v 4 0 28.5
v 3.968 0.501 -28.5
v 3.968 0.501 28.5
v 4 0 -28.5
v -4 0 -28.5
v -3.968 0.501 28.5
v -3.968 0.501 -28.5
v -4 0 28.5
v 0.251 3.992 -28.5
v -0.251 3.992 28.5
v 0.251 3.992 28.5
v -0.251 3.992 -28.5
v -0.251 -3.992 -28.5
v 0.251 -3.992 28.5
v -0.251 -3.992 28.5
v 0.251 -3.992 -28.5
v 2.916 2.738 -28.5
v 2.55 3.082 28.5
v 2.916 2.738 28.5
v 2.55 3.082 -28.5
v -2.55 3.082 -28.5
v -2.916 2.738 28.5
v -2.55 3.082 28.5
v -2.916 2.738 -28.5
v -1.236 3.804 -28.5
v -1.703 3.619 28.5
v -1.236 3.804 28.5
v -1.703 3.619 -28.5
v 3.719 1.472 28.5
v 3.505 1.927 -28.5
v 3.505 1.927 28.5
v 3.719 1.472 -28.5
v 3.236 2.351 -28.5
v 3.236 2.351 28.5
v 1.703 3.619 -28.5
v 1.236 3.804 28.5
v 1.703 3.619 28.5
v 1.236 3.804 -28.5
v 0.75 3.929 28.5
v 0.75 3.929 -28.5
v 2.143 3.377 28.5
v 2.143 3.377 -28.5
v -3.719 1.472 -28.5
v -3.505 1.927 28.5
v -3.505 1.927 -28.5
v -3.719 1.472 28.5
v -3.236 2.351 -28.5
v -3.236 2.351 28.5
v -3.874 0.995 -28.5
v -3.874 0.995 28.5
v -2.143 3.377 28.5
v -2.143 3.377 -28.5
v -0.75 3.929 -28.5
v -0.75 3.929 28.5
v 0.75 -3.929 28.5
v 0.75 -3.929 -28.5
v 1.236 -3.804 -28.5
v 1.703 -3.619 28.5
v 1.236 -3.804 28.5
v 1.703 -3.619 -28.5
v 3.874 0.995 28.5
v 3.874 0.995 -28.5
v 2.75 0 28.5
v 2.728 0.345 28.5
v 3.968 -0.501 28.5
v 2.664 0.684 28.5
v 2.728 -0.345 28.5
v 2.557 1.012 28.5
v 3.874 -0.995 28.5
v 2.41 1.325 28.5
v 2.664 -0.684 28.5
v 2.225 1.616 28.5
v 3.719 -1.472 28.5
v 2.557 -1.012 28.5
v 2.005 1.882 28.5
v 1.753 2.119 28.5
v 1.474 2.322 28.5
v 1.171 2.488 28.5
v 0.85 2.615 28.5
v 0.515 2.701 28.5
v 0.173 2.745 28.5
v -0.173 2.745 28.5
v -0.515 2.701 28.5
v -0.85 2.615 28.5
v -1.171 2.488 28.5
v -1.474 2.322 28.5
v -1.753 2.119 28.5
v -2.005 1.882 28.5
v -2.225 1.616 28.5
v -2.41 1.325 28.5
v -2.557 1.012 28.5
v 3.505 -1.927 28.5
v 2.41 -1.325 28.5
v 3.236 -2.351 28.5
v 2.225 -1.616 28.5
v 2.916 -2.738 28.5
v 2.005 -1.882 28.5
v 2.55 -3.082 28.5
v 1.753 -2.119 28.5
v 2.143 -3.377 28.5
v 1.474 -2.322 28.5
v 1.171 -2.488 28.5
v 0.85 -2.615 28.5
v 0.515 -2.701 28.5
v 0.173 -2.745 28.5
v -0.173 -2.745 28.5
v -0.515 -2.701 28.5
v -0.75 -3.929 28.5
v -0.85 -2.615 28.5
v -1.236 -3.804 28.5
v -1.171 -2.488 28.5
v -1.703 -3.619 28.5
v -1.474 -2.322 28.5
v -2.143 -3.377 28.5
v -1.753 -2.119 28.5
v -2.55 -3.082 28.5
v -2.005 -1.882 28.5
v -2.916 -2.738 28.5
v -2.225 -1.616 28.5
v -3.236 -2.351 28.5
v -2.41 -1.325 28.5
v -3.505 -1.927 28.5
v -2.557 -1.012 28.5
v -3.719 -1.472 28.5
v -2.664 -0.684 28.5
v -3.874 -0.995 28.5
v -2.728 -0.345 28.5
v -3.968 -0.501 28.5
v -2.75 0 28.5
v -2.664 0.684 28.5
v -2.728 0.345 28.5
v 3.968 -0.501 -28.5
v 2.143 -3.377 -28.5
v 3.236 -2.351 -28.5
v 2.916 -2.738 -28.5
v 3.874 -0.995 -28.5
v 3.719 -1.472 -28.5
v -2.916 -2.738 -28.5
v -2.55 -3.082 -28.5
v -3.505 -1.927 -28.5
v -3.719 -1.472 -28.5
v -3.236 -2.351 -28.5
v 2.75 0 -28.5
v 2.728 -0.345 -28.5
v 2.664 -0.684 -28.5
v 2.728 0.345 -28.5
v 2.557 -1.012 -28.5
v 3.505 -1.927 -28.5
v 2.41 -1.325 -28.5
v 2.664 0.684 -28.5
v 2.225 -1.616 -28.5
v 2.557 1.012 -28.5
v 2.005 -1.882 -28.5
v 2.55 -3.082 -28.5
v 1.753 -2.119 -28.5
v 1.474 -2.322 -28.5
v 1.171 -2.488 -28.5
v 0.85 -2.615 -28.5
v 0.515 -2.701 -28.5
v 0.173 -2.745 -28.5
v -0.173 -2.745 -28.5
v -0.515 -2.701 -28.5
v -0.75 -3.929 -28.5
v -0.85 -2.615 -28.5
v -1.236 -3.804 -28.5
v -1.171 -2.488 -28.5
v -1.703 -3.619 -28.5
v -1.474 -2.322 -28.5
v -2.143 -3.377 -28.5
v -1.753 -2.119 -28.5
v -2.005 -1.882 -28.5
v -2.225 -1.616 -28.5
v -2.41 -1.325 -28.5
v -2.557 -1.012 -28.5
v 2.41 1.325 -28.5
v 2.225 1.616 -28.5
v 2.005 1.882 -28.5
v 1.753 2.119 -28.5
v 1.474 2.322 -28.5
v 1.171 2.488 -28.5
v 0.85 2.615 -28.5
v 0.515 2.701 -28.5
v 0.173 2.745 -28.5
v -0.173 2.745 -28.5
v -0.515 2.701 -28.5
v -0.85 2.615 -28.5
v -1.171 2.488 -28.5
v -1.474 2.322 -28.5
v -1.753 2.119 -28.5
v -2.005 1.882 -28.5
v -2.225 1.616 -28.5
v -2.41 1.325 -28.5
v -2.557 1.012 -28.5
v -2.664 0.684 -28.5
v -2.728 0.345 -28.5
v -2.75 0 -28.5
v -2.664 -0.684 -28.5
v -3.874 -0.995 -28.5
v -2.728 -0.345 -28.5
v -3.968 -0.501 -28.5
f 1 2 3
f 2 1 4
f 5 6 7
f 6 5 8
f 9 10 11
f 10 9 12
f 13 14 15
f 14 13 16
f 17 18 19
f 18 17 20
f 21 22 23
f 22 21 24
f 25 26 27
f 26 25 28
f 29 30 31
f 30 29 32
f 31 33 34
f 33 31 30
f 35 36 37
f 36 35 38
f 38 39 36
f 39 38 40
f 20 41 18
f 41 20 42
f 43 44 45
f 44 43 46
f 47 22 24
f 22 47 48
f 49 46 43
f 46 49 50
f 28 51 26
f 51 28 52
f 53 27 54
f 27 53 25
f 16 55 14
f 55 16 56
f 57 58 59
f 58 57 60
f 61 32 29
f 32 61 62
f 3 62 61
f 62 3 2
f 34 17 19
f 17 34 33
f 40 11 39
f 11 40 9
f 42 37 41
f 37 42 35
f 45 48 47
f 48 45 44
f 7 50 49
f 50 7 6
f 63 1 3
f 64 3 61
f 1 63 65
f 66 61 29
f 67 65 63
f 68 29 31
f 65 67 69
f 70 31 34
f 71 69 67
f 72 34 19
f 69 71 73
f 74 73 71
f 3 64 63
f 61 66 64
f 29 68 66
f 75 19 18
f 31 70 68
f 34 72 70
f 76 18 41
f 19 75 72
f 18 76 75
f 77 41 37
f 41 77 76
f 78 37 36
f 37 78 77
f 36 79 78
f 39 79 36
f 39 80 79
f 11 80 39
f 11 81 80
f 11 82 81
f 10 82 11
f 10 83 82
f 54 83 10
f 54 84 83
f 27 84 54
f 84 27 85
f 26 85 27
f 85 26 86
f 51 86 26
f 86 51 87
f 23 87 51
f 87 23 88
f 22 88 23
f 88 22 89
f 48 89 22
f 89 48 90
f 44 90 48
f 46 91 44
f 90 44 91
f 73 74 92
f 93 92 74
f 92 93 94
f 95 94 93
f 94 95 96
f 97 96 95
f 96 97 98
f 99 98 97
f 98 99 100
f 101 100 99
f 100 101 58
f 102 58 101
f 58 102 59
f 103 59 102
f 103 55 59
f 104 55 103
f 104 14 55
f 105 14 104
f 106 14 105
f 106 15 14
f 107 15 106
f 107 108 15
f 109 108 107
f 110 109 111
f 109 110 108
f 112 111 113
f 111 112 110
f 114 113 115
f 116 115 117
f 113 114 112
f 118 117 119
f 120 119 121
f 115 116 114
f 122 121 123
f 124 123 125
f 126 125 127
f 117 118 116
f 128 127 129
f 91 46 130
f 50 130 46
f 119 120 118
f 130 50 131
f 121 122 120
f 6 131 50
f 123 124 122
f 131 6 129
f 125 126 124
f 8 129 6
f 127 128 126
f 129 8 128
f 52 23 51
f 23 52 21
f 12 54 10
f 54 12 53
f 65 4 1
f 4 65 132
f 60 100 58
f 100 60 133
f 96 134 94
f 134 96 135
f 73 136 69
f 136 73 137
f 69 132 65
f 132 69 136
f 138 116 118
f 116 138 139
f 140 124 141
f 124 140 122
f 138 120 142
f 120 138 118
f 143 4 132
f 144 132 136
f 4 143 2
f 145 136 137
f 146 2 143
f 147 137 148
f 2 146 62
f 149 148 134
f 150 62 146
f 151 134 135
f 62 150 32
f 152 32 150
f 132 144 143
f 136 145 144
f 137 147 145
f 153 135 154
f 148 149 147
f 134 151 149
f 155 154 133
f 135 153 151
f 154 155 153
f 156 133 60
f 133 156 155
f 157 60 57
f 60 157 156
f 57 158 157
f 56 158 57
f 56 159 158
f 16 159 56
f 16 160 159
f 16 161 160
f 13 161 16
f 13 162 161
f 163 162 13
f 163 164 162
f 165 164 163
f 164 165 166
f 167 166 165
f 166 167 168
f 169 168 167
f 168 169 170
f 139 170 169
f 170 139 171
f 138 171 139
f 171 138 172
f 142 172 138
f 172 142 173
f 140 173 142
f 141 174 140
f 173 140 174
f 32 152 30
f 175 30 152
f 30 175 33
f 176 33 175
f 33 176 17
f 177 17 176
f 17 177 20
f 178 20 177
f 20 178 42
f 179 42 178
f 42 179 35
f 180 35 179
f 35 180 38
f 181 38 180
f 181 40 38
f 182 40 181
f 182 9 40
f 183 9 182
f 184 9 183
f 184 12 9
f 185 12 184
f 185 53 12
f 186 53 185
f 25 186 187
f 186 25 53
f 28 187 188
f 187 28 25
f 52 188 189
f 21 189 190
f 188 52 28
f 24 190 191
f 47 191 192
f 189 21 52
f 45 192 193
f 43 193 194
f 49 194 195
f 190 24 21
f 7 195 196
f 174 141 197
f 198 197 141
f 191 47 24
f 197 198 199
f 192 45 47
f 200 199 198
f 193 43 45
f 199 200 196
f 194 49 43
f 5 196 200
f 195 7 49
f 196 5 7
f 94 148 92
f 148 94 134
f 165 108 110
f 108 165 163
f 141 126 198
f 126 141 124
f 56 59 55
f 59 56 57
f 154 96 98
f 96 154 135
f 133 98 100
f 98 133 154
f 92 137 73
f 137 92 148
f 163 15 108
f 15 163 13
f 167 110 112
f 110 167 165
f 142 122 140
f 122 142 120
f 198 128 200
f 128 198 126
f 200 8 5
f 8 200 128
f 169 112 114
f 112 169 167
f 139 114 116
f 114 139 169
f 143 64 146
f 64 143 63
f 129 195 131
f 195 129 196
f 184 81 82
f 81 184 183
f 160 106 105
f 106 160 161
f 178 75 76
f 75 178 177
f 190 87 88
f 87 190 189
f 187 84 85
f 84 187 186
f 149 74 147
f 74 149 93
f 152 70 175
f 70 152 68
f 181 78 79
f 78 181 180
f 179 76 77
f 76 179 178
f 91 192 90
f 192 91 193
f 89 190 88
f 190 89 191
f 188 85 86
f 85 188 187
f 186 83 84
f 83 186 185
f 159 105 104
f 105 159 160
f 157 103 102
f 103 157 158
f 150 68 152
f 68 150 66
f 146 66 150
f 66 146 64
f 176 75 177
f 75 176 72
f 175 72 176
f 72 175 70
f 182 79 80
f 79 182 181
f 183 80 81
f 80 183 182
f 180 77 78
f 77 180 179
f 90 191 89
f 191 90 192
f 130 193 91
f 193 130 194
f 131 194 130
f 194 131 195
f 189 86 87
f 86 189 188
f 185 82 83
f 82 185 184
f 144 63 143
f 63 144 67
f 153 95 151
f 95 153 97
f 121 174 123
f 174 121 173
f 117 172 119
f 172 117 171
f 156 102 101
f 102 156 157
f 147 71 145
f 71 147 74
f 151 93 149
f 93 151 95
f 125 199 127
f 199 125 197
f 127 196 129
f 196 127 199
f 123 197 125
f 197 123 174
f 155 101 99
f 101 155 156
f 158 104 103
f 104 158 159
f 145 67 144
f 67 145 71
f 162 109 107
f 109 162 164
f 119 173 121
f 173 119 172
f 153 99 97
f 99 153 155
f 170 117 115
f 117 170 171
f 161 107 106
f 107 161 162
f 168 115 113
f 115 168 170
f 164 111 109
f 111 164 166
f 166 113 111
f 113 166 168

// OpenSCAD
$fn = 50;


difference() {
	union() {
		translate(v = [0, 0, -28.5000000000]) {
			cylinder(h = 57, r = 4.0000000000);
		}
	}
	union() {
		translate(v = [0, 0, -100.0000000000]) {
			cylinder(h = 200, r = 2.7500000000);
		}
	}
}
